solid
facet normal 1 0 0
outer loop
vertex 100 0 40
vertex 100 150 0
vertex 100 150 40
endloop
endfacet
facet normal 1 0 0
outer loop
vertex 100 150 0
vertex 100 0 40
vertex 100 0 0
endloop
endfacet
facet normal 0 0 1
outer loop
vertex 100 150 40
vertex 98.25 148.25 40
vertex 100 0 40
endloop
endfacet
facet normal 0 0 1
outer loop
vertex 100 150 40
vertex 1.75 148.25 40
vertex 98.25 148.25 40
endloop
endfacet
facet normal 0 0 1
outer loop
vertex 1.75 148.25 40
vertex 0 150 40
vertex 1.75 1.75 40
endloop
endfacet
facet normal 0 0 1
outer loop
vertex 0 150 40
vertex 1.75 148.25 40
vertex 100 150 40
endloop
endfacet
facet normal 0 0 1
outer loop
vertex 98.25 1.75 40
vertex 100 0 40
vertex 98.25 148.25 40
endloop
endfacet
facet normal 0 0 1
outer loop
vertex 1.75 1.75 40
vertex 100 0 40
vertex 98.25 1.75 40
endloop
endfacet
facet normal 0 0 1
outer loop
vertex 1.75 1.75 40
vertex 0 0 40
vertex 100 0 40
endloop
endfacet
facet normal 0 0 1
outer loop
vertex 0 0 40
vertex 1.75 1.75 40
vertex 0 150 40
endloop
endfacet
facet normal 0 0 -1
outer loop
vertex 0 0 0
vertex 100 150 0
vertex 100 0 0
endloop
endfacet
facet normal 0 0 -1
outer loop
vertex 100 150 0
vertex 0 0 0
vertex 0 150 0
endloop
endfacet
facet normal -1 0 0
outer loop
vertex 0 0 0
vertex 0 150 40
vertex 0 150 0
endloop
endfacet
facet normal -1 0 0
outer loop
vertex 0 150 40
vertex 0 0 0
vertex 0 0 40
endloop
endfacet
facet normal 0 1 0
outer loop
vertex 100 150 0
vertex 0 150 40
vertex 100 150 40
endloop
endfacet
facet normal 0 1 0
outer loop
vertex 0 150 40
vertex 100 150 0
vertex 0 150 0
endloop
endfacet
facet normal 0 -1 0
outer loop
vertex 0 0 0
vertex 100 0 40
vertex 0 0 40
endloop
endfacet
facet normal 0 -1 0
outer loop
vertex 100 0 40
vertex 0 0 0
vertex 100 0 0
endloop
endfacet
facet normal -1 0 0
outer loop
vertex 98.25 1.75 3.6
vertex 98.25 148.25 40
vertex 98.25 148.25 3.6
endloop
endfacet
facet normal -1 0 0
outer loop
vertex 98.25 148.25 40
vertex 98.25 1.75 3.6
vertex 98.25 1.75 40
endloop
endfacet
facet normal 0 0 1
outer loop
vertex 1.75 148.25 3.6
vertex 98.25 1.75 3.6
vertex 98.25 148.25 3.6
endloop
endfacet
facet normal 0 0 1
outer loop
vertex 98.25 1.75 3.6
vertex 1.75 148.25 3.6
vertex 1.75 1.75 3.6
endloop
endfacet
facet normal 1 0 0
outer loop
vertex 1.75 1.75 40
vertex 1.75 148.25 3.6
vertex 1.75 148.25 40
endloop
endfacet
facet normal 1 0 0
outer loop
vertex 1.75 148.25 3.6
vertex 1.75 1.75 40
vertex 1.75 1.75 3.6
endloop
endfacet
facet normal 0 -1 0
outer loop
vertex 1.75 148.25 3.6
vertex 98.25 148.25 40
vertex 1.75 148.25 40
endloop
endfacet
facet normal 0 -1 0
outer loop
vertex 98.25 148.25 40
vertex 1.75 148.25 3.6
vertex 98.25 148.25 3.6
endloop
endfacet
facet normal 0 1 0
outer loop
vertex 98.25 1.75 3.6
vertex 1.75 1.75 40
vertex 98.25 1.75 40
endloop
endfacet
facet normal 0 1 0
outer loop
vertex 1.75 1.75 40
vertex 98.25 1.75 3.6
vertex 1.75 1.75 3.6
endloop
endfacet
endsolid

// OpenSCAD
xsize = 100;
ysize = 150;
zsize = 40;
thickness = .35 * 10;
module ssbox()
{
   difference(){
       cube([xsize,ysize,zsize]);
       translate([thickness / 2, thickness / 2, thickness+.1 ]) cube([xsize - thickness,ysize - thickness, zsize - thickness]);
       }
 }
 
 
 ssbox();
 
